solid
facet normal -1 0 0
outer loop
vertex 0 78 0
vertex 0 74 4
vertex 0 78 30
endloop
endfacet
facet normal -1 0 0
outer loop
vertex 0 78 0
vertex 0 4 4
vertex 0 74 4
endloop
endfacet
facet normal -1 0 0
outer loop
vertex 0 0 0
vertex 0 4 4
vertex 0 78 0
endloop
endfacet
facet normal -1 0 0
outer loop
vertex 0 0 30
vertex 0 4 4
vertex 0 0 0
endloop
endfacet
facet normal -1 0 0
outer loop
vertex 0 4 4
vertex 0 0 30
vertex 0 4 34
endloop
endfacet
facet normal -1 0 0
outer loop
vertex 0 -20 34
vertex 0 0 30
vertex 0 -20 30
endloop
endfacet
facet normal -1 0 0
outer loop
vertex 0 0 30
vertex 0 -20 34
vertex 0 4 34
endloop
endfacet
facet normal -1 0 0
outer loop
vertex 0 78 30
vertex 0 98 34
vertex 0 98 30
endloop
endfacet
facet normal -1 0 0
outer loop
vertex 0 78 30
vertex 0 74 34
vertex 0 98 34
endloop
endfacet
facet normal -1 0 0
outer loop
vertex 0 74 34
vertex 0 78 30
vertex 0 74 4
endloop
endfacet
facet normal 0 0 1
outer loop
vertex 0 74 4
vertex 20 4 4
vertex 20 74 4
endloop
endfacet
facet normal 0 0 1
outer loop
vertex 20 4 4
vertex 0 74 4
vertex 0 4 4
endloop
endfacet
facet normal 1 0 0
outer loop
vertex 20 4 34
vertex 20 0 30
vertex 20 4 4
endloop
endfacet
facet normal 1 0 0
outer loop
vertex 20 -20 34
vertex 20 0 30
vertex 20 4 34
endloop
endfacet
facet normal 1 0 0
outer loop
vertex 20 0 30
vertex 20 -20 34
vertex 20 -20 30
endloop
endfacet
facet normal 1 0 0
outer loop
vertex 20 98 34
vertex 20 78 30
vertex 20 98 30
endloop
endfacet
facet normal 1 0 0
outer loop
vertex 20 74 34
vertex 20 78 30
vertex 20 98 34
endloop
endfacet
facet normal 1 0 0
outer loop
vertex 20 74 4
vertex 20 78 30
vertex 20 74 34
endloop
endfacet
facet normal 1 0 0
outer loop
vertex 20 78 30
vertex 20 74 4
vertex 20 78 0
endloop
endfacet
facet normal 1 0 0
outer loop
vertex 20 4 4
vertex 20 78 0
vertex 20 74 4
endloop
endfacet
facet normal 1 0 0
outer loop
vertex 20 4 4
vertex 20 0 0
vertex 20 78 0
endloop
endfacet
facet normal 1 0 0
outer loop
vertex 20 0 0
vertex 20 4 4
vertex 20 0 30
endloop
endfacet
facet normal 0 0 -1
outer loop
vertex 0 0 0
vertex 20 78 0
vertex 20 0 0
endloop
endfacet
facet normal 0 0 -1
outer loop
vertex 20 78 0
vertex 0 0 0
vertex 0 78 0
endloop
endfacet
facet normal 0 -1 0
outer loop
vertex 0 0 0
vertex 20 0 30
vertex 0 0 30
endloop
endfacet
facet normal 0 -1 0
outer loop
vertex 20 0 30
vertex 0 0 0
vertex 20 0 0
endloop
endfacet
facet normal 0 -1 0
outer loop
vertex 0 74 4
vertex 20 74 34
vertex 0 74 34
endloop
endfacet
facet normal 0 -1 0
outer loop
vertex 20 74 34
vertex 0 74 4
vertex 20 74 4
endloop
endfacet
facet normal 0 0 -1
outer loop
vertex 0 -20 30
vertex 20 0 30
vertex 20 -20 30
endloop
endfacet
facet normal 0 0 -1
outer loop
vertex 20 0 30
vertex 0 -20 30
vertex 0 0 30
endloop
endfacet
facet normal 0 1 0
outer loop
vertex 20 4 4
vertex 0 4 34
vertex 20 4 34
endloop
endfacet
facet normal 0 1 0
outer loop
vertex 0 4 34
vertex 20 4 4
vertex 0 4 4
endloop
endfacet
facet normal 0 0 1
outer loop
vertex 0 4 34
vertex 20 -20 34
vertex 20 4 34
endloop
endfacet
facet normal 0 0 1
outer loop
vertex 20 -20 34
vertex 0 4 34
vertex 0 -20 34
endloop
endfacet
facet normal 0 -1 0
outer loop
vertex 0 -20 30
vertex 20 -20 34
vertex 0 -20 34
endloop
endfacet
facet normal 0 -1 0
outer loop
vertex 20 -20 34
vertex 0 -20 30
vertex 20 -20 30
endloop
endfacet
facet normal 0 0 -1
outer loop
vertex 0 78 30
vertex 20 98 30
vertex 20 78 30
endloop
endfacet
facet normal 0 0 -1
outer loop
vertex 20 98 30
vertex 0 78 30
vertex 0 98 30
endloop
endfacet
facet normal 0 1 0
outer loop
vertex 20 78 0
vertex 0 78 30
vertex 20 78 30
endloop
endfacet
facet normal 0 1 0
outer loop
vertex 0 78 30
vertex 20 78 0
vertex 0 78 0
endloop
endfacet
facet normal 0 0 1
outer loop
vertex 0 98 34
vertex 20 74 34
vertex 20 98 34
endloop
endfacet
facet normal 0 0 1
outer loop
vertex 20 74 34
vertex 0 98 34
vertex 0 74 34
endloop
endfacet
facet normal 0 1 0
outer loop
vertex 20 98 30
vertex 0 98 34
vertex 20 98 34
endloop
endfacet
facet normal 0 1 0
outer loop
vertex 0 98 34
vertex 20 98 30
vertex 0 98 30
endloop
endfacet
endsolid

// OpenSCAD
Battery();

module Battery(width=74, heigth=30){
    
    // Main
    color("red")
    translate([0,0,0])
    cube([20,width,4]);
    
    // Left
    color("blue")
    translate([0,0,0])
    cube([20,4,heigth]);
    translate([0,-20,heigth])
    cube([20,24,4]);    
    
    // Right
    translate([0,width,0])
    cube([20,4,heigth]);
    translate([0,width,heigth])
    cube([20,24,4]);
}
